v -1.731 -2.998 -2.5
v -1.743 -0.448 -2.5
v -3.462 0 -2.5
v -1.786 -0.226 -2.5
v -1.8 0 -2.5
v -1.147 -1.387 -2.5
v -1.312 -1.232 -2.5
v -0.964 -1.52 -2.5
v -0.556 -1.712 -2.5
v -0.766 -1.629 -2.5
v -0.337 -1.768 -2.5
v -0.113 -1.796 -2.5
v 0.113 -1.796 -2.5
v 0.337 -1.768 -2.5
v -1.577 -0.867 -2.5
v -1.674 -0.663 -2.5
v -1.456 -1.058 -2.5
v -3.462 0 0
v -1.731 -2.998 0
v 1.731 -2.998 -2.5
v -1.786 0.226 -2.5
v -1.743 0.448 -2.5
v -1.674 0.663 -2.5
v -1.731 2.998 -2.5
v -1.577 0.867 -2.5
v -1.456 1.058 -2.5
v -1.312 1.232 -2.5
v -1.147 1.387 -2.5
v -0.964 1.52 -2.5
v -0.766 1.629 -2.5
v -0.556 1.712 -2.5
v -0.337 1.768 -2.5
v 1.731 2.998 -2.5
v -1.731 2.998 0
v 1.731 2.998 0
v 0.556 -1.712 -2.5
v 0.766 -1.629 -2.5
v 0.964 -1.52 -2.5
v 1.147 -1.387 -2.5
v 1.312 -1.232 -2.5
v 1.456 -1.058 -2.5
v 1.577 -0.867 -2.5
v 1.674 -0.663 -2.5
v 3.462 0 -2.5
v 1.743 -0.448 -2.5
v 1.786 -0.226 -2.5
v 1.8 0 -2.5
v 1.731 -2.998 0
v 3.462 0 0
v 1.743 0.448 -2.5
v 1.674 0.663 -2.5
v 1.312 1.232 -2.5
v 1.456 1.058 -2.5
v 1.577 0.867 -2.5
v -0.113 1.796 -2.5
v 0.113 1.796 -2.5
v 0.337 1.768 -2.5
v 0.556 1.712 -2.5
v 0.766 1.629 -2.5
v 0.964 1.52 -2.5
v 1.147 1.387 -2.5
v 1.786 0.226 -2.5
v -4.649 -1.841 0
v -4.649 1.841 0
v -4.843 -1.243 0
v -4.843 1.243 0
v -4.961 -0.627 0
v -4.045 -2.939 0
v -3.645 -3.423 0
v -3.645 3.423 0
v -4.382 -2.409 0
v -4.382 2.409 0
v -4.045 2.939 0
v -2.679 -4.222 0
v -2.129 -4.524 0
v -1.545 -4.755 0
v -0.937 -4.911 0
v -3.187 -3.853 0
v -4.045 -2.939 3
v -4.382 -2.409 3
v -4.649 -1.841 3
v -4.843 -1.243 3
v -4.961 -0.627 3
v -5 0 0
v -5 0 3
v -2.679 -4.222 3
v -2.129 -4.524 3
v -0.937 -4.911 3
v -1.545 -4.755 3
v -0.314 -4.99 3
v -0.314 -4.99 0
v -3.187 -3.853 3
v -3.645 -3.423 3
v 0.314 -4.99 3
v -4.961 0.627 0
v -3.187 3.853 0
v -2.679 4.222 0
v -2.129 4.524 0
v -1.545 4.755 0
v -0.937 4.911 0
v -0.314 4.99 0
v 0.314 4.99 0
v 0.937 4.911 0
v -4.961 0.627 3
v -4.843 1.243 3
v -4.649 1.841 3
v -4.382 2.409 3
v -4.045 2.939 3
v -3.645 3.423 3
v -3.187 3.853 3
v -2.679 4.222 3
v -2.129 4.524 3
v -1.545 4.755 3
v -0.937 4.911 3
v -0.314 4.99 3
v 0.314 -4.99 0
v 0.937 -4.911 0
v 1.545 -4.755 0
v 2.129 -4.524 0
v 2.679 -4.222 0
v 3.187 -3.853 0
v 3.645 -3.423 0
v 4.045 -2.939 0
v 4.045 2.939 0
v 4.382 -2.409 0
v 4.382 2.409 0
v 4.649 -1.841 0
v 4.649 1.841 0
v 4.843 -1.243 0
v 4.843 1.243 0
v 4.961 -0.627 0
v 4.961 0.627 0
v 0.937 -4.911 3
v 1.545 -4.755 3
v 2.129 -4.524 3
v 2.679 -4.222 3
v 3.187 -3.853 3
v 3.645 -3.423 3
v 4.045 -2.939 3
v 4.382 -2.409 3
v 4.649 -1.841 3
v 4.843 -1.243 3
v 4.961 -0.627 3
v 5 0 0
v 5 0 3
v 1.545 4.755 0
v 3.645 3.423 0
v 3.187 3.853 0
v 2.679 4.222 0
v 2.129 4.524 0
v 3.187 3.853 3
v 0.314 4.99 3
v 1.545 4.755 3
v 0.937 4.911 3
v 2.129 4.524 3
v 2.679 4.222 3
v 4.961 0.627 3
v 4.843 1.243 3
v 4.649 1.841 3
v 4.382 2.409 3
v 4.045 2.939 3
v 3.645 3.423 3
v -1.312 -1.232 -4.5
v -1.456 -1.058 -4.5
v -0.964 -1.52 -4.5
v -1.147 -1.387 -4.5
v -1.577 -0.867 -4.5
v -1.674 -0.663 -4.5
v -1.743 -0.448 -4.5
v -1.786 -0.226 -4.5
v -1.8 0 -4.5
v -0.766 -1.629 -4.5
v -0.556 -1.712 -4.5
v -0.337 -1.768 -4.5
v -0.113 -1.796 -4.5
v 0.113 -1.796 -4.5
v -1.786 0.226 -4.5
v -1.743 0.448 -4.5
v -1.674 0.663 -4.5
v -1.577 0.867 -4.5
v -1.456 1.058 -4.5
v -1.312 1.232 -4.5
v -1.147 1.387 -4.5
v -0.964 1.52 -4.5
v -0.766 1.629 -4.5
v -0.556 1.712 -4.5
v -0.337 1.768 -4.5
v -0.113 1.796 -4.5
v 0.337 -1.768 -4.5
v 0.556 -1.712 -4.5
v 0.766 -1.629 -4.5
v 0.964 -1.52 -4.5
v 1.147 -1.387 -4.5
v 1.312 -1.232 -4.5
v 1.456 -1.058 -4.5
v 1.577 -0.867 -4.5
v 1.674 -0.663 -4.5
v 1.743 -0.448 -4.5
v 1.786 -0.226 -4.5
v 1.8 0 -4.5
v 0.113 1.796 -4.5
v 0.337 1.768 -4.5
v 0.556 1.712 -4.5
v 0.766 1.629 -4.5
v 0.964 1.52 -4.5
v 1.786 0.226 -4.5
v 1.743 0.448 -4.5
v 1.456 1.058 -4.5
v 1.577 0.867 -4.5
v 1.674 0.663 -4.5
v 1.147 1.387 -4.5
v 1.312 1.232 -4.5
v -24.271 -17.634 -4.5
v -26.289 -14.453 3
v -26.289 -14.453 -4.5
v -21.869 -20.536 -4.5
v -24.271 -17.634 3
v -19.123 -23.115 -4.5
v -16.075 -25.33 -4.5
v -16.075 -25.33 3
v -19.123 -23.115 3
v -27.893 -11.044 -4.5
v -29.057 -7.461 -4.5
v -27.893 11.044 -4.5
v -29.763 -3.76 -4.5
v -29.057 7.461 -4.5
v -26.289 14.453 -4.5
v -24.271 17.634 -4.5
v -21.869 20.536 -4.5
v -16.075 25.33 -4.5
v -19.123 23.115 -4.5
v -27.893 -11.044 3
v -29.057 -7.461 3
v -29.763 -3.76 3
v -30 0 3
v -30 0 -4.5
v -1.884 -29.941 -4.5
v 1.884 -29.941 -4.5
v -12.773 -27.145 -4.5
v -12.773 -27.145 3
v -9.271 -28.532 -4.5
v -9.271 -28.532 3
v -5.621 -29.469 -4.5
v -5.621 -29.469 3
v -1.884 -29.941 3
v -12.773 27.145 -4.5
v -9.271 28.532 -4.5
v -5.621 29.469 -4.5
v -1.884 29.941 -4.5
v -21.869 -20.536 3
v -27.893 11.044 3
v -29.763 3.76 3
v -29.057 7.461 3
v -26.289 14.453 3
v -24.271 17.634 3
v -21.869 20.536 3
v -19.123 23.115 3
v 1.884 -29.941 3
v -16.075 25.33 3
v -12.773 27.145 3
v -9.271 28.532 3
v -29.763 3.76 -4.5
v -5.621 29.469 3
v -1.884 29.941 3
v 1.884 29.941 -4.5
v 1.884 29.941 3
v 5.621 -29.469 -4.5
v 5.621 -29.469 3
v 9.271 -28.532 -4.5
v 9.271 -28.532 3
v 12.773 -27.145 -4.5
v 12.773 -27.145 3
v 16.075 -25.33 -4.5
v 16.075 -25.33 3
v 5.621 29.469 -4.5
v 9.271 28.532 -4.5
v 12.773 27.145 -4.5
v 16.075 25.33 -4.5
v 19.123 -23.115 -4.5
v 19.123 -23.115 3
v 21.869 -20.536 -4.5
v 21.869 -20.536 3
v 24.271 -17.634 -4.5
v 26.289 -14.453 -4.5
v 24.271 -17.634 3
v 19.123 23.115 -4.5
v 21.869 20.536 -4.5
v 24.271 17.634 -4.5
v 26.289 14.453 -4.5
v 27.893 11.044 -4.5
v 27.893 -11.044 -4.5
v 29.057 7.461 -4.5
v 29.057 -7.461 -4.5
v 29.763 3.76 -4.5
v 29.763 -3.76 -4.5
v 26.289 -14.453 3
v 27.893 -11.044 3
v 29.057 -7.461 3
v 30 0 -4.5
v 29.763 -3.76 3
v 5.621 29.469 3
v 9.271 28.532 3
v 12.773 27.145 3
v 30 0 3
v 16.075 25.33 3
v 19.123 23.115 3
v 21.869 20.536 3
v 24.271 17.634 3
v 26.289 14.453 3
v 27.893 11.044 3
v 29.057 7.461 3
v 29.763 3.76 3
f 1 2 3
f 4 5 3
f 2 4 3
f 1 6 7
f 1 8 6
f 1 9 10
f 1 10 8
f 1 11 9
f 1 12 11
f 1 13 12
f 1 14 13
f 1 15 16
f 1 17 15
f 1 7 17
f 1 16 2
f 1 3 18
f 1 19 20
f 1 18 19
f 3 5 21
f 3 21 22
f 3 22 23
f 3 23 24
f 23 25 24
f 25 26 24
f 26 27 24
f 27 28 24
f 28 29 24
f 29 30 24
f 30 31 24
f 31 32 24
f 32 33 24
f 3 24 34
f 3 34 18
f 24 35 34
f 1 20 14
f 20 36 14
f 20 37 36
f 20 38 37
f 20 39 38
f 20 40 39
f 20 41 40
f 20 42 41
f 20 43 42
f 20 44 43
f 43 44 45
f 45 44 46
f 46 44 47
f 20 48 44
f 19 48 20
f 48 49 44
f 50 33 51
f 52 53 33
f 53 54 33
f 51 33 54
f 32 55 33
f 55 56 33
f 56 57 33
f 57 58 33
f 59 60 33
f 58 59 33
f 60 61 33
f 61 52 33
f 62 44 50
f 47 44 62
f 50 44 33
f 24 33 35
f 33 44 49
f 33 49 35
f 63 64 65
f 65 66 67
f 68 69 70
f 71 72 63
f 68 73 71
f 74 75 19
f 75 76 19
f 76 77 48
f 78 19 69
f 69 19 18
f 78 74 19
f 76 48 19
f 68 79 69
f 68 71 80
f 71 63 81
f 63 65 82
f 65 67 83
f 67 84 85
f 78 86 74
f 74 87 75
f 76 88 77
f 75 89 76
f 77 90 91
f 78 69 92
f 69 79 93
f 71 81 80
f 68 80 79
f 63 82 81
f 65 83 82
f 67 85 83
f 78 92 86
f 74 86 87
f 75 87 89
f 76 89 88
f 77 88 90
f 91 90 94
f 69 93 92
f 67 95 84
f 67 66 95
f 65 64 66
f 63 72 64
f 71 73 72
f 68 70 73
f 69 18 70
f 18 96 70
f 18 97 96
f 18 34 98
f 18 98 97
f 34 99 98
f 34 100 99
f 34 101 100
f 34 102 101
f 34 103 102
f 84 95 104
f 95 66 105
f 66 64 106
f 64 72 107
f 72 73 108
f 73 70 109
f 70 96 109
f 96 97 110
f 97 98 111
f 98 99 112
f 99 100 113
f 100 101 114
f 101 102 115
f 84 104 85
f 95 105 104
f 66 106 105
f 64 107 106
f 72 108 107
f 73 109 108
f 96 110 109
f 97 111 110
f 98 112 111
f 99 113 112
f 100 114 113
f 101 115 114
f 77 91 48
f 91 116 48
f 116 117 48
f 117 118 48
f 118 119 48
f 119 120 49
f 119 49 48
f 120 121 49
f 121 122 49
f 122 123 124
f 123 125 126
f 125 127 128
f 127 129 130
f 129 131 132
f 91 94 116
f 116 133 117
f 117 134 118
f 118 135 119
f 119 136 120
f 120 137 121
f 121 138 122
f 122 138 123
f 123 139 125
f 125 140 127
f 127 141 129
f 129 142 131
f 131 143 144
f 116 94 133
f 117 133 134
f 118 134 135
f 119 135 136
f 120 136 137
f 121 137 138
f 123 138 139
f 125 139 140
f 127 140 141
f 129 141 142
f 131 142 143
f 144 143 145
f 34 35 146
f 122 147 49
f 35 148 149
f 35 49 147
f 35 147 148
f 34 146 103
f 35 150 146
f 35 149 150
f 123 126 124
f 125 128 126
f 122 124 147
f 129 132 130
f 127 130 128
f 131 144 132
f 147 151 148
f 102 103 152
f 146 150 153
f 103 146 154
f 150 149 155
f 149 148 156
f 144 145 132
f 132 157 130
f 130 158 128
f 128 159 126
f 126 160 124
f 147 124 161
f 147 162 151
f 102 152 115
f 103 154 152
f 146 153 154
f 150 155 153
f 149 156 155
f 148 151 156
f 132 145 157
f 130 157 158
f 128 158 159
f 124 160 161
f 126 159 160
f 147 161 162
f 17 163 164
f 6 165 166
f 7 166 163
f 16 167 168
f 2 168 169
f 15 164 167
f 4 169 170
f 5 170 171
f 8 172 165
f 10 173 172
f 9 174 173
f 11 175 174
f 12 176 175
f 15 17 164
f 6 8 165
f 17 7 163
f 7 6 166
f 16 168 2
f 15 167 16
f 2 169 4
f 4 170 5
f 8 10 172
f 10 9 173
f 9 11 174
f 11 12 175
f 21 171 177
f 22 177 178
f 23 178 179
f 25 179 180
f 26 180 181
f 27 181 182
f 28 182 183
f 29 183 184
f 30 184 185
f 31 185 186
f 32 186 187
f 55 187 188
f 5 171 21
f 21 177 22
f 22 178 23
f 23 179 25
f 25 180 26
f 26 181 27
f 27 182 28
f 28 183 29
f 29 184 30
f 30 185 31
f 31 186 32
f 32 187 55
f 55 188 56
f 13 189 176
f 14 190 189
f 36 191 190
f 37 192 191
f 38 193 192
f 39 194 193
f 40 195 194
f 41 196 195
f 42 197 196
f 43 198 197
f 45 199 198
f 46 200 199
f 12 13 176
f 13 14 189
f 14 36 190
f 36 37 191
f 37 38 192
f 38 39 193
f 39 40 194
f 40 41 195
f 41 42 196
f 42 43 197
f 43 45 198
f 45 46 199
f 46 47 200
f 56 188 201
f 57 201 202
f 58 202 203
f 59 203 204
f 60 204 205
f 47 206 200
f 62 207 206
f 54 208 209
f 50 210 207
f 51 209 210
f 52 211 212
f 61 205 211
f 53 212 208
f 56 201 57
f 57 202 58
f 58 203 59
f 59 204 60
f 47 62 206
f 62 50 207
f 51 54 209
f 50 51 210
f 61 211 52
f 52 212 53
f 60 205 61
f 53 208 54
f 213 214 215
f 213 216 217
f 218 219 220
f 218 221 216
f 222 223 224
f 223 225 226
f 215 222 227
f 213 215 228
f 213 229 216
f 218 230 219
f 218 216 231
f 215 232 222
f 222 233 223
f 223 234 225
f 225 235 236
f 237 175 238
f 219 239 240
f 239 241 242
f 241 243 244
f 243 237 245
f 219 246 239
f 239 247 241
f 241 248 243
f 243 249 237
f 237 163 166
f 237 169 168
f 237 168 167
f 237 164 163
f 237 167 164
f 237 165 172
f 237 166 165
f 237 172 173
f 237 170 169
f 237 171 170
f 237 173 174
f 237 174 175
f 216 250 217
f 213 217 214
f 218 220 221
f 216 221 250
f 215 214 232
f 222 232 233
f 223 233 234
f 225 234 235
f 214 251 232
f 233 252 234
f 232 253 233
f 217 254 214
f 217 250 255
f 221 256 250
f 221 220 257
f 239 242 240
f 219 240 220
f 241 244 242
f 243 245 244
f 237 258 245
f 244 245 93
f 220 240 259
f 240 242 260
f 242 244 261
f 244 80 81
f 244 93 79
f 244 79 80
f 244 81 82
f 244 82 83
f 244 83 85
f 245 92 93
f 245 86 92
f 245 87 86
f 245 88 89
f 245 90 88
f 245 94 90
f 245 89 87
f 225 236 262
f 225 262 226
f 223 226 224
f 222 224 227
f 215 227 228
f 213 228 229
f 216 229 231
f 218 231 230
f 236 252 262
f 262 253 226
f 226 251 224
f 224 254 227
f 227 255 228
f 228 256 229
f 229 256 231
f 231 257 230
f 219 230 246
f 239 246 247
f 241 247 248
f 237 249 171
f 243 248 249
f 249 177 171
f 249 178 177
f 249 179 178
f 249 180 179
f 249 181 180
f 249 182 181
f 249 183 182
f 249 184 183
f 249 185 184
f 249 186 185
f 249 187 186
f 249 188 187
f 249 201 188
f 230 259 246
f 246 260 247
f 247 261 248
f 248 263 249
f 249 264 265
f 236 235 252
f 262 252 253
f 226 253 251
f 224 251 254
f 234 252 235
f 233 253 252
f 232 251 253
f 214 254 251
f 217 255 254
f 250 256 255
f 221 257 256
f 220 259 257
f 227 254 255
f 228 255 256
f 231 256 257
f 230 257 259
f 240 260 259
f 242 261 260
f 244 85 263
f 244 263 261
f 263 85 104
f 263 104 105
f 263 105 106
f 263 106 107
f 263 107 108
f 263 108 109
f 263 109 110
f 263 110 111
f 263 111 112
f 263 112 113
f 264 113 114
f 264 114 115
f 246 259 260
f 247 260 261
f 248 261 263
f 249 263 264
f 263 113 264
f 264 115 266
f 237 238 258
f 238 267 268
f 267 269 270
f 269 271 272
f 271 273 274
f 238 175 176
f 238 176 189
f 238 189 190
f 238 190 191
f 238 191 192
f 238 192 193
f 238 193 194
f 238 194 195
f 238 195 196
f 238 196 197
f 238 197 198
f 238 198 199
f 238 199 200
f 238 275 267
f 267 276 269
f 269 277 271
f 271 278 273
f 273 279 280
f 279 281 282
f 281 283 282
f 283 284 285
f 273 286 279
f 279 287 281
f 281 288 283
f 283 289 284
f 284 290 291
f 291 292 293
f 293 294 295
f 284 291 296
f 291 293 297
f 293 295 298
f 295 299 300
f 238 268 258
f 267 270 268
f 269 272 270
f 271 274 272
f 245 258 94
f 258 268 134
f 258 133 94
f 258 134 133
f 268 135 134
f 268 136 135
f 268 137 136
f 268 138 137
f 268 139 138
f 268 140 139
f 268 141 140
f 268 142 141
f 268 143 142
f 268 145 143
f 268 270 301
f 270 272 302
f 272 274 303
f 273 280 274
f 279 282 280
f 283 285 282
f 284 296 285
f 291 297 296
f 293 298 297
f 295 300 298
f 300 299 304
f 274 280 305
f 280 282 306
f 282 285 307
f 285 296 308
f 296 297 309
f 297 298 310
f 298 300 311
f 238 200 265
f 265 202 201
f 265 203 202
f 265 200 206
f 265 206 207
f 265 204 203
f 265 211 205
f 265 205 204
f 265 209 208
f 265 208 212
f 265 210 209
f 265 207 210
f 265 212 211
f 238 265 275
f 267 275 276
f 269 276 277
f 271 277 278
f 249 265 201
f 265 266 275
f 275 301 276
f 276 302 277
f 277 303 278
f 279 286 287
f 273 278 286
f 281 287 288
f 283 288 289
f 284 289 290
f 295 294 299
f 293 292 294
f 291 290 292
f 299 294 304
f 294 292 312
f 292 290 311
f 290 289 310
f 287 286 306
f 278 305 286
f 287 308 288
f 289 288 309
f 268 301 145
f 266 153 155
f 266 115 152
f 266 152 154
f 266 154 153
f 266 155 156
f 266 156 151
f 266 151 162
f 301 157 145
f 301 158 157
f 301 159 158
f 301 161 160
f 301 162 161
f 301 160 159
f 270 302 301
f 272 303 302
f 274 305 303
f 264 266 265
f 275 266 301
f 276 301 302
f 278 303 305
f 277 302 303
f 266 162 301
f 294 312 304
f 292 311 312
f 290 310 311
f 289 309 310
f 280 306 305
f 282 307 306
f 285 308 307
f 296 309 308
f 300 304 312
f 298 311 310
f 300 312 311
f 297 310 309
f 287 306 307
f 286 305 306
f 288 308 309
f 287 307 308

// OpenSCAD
$fn = 50;

difference() {
	union() {
		translate(v = [0, 0, -4.5]) {
			cylinder(h = 7.5, r = 30.0);
		}
	}
	union() {
		translate(v = [0, 0, 0]) {
			rotate(a = [0, 0, 0]) {
				difference() {
					union() {
						translate(v = [0, 0, -2.5]) {
							linear_extrude(height = 2.5) {
								polygon(points = [[3.4619999999999997, 0.0], [1.7310000000000003, 2.9981799479017264], [-1.7309999999999992, 2.9981799479017264], [-3.4619999999999997, 4.2397272186481365e-16], [-1.7310000000000014, -2.998179947901726], [1.7309999999999977, -2.9981799479017277]]);
							}
						}
					}
					union();
				}
			}
		}
		#cylinder(h = 3, r = 5.0);
		#translate(v = [0, 0, -100.0]) {
			cylinder(h = 200, r = 1.8);
		}
	}
}
